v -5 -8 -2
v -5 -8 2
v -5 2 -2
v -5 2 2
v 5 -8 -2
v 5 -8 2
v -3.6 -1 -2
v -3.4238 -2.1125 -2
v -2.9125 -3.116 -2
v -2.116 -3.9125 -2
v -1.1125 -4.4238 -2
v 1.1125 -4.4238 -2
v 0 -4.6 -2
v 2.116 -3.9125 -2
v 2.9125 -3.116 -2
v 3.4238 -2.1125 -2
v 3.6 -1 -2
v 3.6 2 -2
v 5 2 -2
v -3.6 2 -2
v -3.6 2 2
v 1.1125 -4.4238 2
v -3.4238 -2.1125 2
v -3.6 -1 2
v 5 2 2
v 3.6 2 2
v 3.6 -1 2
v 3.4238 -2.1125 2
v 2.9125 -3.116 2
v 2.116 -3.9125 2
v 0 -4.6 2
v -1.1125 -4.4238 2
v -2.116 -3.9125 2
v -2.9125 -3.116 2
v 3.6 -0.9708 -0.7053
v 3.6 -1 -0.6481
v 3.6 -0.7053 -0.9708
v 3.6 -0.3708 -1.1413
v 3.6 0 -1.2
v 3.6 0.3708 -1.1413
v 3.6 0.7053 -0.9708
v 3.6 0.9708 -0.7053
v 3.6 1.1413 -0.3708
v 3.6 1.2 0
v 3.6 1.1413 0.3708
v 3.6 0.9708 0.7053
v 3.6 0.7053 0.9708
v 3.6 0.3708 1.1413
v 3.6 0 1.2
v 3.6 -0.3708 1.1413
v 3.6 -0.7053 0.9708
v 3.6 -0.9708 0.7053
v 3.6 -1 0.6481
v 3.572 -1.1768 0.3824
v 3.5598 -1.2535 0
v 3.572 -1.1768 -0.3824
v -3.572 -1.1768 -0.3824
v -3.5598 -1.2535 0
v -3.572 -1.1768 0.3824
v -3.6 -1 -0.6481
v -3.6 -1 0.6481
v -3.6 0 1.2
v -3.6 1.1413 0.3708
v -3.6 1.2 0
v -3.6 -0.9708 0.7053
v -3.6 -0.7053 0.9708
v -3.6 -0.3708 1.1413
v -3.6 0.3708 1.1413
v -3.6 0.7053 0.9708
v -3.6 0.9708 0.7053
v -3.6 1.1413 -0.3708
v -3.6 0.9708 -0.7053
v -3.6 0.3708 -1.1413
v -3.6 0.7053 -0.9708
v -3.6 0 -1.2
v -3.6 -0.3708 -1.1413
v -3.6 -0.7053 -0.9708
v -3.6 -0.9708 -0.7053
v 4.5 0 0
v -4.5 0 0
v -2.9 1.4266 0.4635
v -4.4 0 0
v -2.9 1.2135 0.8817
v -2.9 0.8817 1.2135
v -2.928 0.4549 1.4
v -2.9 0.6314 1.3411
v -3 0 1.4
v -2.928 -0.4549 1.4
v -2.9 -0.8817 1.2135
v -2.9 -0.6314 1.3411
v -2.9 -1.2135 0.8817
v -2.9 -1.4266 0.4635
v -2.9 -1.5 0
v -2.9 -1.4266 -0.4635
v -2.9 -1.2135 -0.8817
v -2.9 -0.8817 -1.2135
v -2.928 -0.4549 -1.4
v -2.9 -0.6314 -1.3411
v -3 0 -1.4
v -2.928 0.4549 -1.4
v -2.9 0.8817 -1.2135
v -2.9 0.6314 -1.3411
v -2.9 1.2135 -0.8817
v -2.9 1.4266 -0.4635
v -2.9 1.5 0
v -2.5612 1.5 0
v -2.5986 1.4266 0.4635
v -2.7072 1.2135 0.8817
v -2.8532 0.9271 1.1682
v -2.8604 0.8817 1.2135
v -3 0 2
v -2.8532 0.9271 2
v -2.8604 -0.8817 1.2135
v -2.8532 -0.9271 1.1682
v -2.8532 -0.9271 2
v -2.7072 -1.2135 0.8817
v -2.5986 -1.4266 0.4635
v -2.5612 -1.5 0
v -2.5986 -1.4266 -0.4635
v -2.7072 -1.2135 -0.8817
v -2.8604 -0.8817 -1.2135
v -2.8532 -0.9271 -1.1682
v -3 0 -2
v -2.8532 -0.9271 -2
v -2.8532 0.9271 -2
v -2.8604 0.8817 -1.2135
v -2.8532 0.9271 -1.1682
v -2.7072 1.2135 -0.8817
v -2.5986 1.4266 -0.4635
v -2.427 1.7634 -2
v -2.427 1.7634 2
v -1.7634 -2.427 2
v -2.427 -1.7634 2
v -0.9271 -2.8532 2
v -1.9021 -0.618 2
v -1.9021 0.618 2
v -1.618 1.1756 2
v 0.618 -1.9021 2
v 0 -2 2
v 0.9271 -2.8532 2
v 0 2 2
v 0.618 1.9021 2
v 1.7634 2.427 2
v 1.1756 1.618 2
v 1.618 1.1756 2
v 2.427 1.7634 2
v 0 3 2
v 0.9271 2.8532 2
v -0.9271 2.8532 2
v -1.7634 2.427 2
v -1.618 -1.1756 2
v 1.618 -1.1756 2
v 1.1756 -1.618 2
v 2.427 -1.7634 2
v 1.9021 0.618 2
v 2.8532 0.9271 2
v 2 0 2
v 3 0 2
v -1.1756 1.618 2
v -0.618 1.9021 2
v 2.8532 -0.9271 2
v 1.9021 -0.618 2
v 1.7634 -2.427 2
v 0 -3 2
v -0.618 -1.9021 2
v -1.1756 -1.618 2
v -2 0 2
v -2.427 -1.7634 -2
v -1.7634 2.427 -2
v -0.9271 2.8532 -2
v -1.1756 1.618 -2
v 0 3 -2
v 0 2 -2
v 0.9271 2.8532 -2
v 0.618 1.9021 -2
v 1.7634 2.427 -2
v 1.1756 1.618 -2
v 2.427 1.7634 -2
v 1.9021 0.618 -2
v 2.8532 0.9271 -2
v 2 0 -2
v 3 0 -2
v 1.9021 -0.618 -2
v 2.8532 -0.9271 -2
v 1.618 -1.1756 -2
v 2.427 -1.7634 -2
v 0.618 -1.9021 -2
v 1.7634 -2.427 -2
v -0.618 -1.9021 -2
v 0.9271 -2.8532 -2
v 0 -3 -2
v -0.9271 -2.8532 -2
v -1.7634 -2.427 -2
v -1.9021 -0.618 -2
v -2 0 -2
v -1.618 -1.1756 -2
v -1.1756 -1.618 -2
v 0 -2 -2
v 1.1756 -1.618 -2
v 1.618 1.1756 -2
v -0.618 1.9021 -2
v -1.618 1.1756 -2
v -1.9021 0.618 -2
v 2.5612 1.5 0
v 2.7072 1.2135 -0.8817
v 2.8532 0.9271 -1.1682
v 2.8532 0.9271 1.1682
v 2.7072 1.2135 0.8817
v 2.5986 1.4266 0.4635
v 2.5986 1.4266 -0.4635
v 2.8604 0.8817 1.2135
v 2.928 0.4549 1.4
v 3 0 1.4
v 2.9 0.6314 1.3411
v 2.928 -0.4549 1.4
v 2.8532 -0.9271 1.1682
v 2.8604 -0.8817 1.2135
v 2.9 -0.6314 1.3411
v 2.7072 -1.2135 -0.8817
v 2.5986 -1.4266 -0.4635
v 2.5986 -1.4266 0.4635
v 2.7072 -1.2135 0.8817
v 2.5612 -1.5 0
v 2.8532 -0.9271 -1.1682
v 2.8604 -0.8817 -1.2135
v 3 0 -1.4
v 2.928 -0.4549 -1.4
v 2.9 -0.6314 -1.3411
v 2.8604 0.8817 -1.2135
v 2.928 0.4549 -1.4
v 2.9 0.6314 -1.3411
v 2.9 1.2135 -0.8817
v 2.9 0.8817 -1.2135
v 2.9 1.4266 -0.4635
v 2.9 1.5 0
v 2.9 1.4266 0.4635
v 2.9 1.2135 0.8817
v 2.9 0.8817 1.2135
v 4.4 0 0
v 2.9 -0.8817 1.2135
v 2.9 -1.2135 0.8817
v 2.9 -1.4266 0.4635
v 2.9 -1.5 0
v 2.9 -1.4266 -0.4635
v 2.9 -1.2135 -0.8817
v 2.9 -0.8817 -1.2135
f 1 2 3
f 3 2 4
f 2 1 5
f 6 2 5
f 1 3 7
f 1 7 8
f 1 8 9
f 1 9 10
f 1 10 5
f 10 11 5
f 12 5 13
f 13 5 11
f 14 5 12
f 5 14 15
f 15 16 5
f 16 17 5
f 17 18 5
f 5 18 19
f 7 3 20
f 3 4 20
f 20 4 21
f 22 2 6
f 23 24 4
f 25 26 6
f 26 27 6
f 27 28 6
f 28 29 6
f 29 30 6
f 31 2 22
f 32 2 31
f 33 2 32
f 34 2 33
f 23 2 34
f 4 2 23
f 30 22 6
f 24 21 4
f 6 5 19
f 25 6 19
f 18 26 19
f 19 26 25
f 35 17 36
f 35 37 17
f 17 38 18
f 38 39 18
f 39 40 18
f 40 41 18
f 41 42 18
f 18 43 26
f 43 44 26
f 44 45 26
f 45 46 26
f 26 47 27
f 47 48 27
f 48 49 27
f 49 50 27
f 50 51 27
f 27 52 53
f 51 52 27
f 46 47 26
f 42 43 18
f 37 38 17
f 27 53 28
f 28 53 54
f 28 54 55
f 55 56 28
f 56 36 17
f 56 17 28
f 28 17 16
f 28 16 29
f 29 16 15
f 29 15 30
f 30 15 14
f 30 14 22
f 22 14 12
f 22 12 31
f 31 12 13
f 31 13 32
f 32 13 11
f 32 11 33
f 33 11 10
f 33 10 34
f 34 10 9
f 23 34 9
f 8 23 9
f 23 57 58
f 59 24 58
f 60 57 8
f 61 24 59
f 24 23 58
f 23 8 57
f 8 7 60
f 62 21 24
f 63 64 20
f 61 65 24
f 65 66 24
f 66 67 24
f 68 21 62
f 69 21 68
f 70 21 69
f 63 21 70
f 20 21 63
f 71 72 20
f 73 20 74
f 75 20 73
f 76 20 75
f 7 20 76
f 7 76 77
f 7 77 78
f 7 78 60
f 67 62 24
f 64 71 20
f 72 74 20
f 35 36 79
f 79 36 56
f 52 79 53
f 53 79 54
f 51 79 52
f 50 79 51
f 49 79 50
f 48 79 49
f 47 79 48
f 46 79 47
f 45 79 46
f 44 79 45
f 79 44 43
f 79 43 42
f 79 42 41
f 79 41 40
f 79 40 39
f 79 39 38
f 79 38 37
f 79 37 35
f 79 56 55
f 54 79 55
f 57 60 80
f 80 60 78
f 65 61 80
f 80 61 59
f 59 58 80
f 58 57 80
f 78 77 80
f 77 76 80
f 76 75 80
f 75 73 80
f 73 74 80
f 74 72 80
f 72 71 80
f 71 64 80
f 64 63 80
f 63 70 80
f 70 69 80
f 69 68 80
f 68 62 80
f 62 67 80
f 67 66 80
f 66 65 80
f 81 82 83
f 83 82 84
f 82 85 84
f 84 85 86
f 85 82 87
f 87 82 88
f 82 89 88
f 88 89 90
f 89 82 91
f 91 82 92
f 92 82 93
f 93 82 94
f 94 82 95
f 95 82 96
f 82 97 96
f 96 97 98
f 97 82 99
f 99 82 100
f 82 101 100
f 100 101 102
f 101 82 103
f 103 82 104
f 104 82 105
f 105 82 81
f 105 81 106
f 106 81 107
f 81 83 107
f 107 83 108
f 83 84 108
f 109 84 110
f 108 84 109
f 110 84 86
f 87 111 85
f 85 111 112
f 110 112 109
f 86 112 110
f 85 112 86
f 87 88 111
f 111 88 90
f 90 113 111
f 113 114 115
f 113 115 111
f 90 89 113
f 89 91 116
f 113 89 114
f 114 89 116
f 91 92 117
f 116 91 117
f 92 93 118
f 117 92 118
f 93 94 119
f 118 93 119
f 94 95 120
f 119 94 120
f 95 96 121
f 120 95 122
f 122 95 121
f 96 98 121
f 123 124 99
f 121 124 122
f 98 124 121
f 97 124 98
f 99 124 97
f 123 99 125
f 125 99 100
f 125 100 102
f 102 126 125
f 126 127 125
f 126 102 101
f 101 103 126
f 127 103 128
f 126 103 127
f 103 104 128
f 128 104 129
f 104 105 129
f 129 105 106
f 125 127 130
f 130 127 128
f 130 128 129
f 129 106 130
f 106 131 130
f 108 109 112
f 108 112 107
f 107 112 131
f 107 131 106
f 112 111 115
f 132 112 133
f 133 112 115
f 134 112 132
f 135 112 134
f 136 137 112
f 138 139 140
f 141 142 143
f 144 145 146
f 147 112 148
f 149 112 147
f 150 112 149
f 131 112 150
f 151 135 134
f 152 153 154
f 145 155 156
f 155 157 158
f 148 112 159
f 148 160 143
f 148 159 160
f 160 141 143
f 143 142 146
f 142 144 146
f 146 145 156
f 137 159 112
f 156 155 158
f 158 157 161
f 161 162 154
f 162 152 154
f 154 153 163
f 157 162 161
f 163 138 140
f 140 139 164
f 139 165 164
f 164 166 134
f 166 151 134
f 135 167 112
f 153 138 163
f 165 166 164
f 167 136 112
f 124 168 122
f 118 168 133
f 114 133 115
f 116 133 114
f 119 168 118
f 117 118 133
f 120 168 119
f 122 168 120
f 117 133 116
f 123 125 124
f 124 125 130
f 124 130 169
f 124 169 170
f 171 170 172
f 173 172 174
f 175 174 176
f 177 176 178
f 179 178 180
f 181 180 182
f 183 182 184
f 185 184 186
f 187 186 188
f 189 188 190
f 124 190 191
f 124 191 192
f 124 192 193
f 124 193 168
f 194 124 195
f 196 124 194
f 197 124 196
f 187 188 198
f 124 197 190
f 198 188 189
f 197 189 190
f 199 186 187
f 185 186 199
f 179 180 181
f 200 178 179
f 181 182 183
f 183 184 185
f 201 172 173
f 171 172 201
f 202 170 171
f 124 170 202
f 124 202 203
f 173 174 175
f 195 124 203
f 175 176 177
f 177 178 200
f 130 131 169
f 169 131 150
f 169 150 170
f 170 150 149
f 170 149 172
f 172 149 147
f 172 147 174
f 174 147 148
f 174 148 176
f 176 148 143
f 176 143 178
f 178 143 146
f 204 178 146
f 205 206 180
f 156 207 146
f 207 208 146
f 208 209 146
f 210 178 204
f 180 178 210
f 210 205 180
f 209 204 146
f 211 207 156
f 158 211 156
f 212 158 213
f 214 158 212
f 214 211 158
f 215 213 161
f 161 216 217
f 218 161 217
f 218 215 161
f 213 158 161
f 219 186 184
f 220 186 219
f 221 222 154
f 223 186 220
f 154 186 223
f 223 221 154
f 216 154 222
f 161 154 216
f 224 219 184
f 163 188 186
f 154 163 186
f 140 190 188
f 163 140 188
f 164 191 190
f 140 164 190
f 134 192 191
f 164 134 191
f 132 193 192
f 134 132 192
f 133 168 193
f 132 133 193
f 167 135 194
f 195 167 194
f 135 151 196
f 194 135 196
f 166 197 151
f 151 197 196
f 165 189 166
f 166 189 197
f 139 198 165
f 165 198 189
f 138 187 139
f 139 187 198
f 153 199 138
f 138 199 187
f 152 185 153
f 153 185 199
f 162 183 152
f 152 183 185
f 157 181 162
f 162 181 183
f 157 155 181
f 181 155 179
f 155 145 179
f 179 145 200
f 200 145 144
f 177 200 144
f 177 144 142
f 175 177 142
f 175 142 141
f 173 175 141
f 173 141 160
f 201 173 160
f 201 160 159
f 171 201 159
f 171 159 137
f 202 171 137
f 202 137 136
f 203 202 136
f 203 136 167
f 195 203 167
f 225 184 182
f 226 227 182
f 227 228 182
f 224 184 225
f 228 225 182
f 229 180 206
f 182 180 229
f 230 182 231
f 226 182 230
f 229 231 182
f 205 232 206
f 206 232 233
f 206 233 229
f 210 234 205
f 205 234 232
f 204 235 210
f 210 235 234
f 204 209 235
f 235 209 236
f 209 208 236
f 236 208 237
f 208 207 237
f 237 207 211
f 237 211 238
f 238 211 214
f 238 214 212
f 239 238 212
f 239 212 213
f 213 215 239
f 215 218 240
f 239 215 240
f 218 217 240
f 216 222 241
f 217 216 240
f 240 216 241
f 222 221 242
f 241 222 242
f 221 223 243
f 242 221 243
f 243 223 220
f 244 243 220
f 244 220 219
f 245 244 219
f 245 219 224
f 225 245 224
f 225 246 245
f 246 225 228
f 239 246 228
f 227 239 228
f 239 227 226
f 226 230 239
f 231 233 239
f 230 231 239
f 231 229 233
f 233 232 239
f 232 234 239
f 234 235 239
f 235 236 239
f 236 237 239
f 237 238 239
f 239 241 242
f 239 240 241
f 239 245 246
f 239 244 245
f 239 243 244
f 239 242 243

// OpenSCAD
// file: modules.scad
module hollow_cylinder(r1,r2,h,cent,fn){
	difference(){
		cylinder(r=r1,h=h,center=cent,$fn=fn);
		cylinder(r=r2,h=h+.1,center=cent,$fn=fn);
	}
}
// file: configuration.scad
//Configuration File
//Lets you adjust pretty much everything
//
//Makes it all super paramatric
//


//Configuration Block
$fn = 20;
module configBlock(){
	difference(){
		cube([15,30,10],center=true);

		union(){  //Vertical Holes
			translate([0,10,5]) rotate([0,0,0]) cylinder(r=M3/2,h=10,center=true);
			translate([0,3,5]) rotate([0,0,0]) cylinder(r=M4/2,h=10,center=true);
			translate([0,-8,5]) rotate([0,0,0]) cylinder(r=M8/2,h=10,center=true);
		}

		union(){  //Horizontal Holes
			translate([-7.5,10,0]) rotate([0,90,0]) cylinder(r=M3h/2,h=10,center=true);		
			translate([-7.5,3,0]) rotate([0,90,0]) cylinder(r=M4h/2,h=10,center=true);
			//stranslate([0,-8,0]) rotate([0,90,0]) cylinder(r=M8/2,h=10,center=true);
		}
	}
}

//Bolts
M3 = 4;
M4 = 5;
M8 = 9;

M3h = 3.7;  //Horizontal versions
M4h = 5;  //Horizontal versions
M8h = 8; //Horizontal versions

//Nuts
M3_nut = 0;
M4_nut = 0;

//Size of other parts
rod = 8;  //Dimension of smooth rod
lm8uu = 16;

/*************************
 Printer Design files now
**************************/

//basic
arm_length = 100 ; //Length of the arms based on a planned 100x100 print size
pole_center = 60 ; //The pole distance from the center of the print
rod_sep = 25 + rod/2; // pole to pole seperation for one set. Includes rod length
rod_height = 260;

//motor end effector


//Universal joints
holewidth = 6;
arm_sep = 40;



//Hotend
// main file
include<configuration.scad>;
use<modules.scad>;

$fn = 20;
test = 3;
wall = 1;
height = 4;
gap = 1.2;


module pivot(){
	difference(){
		union(){
			cylinder(r=M3/2+wall,h=height,center=true);
			hull(){	
				for(i=[-180:360:180]){
					translate([i/180*(wall+1.9),0,0]) rotate([0,i/2,0]) cylinder(r1=1.5,r2=0,h=1.5);
				}
			}
		}
		cylinder(r=M3/2,h=height+1,center=true);
	}
	
}

module arm(){

	difference(){
		
		translate([0,-3,0])cube([10,10,height],center=true);
		hull(){
			translate([0,-1,0]) cylinder(r=M3/2+wall+gap/2,h=height+1, center=true);
			translate([0,10,0]) cylinder(r=M3/2+wall+gap/2,h=height+1,center=true);

		}
		
		for(i=[-180:360:180]){
				translate([i/180*(wall+2),0,0]) rotate([0,i/2,0]) cylinder(r1=2,r2=0,h=1.5,$fn=20);
		}


	}


}




arm();
pivot();
